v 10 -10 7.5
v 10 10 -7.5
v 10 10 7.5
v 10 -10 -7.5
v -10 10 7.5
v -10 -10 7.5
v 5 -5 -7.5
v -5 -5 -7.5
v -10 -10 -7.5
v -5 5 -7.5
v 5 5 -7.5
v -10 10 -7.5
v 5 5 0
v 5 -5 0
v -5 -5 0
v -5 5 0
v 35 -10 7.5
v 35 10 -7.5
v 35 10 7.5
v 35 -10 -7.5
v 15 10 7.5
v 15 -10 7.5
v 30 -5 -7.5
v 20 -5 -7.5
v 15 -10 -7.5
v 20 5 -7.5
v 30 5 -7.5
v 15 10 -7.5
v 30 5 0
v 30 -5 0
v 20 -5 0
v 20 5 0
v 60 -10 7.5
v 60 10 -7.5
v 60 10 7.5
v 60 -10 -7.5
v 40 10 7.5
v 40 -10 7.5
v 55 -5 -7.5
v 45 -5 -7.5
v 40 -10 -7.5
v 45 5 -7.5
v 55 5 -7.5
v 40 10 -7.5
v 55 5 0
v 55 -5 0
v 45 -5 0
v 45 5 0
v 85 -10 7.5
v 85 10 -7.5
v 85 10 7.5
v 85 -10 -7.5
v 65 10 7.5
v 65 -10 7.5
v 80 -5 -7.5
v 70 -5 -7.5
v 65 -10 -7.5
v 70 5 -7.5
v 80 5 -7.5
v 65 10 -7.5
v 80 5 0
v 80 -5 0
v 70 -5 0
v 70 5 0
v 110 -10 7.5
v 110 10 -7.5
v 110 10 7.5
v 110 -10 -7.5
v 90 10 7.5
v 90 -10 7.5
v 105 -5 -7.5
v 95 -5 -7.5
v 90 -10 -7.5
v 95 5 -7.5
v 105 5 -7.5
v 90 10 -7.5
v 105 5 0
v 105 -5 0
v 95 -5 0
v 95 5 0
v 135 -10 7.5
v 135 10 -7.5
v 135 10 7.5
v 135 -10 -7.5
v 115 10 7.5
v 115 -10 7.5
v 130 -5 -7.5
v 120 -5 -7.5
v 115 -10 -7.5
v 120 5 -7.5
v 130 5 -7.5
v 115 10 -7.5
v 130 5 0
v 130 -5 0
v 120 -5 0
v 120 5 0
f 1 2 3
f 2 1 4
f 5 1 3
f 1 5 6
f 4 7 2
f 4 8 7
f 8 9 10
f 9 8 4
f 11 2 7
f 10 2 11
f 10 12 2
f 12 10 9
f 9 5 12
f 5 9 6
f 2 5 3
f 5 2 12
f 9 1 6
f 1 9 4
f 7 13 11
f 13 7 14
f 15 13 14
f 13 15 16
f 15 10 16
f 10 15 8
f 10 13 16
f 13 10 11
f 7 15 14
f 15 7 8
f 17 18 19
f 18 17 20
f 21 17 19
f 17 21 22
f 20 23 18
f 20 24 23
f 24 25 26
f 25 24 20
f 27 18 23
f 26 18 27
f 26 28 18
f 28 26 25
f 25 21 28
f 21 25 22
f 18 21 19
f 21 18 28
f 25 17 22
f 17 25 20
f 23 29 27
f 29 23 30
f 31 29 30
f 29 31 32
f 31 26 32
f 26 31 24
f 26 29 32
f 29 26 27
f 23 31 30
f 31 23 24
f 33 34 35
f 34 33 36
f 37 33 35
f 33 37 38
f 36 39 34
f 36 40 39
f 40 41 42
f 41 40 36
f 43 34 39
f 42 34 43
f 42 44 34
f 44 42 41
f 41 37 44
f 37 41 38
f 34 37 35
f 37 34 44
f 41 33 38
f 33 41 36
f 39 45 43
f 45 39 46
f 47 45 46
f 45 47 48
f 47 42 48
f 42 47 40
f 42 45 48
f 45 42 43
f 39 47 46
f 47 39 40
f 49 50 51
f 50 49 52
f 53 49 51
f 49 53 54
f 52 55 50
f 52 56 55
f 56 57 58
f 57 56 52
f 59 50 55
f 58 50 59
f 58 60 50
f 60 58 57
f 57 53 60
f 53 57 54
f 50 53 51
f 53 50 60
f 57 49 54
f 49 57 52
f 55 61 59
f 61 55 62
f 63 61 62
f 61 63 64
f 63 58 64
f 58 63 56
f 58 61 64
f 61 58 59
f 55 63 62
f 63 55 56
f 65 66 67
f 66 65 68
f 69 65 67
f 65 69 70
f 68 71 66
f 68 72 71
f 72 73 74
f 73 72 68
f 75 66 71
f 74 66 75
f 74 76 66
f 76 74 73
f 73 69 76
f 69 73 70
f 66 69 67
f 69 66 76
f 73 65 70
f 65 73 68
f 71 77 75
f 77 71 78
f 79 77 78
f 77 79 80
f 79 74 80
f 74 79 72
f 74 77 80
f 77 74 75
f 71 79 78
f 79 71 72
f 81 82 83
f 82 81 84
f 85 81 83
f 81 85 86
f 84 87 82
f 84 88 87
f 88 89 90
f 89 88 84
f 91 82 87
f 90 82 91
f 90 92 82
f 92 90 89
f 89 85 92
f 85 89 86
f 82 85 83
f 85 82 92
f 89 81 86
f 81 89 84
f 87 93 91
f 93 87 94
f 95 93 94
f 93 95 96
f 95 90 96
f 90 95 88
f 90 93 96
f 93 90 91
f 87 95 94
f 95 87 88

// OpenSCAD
// Parameters for the U-shaped block
module u_shaped_block() {
    difference() {
        // Outer block with thicker horizontal base and extended vertical arms
        cube([20, 20, 15], center = true);
        // Inner cutout
        translate([0, 0, -7.5]) {
            cube([10, 10, 15], center = true);
        }
    }
}

// Arrange the U-shaped blocks in a linear configuration
module layer_1() {
    for (i = [0:5]) {
        translate([i * 25, 0, 0]) { // Linear arrangement
            u_shaped_block();
        }
    }
}

// Main model
layer_1();
